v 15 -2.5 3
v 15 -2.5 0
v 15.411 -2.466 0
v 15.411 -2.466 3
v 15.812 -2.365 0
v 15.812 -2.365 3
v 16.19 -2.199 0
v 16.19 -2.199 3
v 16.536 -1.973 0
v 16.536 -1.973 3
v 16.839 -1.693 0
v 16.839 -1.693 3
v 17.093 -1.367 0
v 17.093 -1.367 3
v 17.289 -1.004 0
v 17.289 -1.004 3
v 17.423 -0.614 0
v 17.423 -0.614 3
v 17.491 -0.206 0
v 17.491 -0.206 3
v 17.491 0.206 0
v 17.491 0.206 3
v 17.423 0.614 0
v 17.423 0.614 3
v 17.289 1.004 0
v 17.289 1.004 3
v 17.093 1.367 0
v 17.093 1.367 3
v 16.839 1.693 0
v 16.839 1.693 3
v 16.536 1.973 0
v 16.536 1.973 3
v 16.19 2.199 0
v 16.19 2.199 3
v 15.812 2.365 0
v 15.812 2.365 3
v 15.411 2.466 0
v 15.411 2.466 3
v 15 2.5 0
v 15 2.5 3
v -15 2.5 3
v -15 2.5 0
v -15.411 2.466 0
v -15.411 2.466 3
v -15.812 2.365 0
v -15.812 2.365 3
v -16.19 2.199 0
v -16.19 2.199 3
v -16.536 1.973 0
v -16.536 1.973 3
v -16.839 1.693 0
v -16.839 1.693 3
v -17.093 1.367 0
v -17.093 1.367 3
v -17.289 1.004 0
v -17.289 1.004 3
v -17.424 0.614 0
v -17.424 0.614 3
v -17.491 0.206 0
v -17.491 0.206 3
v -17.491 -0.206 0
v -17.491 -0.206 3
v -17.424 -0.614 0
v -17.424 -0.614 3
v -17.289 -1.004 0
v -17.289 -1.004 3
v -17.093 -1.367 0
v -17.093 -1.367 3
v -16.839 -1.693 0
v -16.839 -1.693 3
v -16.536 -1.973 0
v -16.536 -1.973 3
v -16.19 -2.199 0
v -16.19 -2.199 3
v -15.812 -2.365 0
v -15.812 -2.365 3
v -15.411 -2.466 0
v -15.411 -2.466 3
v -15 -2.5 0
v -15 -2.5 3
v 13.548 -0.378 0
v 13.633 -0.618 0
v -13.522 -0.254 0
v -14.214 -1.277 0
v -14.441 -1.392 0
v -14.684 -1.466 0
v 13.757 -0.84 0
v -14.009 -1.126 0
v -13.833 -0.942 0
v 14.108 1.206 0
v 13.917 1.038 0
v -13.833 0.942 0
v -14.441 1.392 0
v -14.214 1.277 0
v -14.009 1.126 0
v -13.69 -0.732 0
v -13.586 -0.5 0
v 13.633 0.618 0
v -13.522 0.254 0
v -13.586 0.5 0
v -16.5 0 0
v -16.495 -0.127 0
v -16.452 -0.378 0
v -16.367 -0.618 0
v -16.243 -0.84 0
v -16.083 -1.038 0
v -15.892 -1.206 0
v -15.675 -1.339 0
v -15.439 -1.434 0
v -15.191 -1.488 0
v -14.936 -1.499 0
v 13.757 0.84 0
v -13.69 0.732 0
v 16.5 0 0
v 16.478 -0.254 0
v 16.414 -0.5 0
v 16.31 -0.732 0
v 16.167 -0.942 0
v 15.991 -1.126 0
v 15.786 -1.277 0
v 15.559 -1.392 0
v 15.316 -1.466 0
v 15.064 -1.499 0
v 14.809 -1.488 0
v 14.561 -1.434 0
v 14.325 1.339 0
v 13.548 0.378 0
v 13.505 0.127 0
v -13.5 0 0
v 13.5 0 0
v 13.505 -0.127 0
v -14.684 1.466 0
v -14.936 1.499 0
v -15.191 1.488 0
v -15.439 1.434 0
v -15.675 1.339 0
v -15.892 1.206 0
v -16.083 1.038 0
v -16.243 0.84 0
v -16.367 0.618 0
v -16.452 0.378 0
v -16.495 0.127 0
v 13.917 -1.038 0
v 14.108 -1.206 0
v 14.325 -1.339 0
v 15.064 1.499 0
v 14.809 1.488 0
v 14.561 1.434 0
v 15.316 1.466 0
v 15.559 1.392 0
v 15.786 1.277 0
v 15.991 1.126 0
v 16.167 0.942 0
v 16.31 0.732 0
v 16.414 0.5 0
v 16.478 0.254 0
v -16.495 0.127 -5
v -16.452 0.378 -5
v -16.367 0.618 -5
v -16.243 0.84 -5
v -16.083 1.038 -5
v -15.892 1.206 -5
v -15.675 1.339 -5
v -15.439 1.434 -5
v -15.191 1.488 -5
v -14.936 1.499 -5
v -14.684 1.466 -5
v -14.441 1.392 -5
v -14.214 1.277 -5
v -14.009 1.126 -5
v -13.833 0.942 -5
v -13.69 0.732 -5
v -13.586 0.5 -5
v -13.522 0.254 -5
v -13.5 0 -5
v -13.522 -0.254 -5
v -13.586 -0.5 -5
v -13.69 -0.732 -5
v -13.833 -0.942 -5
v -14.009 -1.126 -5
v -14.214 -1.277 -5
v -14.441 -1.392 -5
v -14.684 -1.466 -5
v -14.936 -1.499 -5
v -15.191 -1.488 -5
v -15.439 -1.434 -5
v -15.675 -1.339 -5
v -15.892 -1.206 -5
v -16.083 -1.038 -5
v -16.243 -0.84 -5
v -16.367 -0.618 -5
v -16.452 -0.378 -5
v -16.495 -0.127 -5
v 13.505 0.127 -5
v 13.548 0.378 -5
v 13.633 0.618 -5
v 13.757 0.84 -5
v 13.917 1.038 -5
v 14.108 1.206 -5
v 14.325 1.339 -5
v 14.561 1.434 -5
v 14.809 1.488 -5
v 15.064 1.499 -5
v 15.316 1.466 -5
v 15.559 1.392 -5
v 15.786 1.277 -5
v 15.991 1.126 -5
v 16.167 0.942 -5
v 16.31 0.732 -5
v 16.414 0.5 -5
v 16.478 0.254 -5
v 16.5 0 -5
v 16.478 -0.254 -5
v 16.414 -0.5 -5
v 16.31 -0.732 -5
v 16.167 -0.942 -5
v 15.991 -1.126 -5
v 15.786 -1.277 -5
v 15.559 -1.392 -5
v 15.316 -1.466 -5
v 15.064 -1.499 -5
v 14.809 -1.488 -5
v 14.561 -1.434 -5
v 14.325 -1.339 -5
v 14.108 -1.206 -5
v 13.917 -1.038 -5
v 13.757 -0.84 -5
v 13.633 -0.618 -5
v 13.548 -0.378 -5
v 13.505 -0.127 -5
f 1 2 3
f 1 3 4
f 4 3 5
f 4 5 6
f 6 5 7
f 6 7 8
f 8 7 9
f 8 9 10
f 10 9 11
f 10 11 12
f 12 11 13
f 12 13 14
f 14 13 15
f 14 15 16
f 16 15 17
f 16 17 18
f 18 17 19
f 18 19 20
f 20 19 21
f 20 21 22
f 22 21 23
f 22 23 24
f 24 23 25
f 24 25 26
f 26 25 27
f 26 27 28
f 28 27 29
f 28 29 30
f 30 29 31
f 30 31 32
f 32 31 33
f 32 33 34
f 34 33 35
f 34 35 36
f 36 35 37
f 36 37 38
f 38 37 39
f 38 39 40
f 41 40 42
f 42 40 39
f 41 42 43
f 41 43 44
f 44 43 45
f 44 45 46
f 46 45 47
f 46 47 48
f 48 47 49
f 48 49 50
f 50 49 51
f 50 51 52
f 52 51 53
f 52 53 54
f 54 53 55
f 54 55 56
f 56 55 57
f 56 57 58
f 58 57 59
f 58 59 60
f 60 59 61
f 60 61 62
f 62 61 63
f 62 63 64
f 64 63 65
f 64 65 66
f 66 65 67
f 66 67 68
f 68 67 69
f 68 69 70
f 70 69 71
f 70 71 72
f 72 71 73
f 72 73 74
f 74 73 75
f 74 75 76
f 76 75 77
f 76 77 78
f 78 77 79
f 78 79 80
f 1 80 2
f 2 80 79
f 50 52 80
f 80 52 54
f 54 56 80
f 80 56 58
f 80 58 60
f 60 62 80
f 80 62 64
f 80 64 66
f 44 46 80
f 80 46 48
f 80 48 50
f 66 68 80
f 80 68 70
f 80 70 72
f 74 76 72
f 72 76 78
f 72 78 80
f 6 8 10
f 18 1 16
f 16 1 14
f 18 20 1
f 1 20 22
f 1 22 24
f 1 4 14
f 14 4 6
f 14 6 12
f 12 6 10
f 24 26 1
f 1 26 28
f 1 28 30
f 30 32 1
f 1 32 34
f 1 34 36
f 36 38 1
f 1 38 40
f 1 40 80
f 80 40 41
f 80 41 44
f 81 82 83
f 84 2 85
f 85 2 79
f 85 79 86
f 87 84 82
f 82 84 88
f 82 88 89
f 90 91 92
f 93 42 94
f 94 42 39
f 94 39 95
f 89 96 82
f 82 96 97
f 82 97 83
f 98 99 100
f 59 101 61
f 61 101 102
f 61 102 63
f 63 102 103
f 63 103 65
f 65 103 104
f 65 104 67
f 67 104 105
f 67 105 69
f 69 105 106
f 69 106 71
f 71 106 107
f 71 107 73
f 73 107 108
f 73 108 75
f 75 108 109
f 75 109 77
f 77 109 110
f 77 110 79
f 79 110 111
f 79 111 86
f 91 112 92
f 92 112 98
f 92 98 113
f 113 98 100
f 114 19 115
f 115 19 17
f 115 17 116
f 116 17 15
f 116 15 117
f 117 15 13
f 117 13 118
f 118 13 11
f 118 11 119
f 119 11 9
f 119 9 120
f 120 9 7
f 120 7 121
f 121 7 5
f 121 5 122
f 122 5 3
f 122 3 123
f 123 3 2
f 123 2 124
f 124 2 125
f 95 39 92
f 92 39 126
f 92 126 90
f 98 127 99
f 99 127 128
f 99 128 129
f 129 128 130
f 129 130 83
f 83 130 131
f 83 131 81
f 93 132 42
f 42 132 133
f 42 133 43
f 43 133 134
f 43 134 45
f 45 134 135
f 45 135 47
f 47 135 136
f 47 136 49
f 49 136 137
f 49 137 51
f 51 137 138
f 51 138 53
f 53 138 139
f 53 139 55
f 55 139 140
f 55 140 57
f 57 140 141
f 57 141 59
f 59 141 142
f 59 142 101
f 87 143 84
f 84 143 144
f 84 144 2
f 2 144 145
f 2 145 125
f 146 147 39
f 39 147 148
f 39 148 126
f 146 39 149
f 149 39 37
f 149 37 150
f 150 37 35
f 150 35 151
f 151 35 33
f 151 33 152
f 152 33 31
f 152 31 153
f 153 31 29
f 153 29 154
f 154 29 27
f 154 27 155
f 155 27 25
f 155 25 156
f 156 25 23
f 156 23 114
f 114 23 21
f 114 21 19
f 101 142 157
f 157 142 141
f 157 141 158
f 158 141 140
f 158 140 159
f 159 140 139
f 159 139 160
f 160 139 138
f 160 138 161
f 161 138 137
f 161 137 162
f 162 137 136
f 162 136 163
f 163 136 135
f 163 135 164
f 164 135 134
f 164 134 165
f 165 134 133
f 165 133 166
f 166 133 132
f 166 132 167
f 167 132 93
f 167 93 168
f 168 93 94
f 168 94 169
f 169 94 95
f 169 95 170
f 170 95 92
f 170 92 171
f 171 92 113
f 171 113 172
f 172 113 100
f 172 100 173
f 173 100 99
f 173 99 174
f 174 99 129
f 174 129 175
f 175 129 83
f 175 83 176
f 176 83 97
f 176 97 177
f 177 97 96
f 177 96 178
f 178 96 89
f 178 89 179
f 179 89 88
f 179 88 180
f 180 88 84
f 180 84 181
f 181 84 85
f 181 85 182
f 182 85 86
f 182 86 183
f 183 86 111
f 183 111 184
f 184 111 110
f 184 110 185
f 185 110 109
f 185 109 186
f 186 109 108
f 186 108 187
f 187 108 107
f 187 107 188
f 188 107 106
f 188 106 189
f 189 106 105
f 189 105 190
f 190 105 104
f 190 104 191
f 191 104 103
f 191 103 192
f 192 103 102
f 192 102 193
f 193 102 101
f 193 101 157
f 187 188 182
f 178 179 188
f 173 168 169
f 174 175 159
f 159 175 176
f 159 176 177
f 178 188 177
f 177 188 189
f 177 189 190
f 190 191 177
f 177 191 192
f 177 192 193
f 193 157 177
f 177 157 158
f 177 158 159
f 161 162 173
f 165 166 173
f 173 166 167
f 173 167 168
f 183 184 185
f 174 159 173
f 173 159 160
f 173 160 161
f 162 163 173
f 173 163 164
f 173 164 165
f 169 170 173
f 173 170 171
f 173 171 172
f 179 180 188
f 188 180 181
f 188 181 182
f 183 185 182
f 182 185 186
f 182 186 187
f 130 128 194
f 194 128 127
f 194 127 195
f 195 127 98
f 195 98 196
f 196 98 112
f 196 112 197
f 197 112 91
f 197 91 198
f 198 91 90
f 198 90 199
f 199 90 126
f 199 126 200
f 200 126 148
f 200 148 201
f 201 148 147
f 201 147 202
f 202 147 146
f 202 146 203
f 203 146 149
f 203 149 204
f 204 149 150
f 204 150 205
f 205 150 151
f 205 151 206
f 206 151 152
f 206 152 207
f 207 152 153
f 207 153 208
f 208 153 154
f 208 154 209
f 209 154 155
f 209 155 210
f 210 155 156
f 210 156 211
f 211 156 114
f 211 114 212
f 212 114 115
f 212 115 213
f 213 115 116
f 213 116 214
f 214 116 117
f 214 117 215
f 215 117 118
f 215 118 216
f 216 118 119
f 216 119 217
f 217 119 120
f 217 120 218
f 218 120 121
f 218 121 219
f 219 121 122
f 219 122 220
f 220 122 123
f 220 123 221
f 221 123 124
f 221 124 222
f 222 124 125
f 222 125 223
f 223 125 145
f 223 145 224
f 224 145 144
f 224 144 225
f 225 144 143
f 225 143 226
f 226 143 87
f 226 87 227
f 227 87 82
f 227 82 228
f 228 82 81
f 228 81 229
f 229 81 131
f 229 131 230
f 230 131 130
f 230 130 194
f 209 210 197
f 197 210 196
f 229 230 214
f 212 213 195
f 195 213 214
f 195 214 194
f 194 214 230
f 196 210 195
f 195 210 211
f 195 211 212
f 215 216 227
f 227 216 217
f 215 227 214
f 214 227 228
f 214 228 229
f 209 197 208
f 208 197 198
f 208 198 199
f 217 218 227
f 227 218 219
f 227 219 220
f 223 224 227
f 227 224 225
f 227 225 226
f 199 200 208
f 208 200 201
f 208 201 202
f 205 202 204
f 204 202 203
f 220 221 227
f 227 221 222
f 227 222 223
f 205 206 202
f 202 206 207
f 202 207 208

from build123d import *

# Parameters (mm, degrees)
BOSS_EXTRUDE1_DEPTH = 3
SKETCH3_R           = 1.5
BOSS_EXTRUDE2_DEPTH = 5


with BuildPart() as part:
    # Sketch1 → Boss-Extrude1 (new body)
    with BuildSketch(Plane.XY):
        with BuildLine():
            Line((-15, -2.5), (15, -2.5))
            ThreePointArc((15, -2.5), (17.5, 0), (15, 2.5))
            Line((15, 2.5), (-15, 2.5))
            ThreePointArc((-15, 2.5), (-17.5, 0), (-15, -2.5))
        make_face()
    extrude(amount=BOSS_EXTRUDE1_DEPTH)

    # Sketch3 → Boss-Extrude2 (add)
    with BuildSketch(Plane.XY):
        with Locations((-15, 0)):
            Circle(SKETCH3_R)
        with Locations((15, 0)):
            Circle(SKETCH3_R)
    extrude(amount=-BOSS_EXTRUDE2_DEPTH)


solid = part.part
